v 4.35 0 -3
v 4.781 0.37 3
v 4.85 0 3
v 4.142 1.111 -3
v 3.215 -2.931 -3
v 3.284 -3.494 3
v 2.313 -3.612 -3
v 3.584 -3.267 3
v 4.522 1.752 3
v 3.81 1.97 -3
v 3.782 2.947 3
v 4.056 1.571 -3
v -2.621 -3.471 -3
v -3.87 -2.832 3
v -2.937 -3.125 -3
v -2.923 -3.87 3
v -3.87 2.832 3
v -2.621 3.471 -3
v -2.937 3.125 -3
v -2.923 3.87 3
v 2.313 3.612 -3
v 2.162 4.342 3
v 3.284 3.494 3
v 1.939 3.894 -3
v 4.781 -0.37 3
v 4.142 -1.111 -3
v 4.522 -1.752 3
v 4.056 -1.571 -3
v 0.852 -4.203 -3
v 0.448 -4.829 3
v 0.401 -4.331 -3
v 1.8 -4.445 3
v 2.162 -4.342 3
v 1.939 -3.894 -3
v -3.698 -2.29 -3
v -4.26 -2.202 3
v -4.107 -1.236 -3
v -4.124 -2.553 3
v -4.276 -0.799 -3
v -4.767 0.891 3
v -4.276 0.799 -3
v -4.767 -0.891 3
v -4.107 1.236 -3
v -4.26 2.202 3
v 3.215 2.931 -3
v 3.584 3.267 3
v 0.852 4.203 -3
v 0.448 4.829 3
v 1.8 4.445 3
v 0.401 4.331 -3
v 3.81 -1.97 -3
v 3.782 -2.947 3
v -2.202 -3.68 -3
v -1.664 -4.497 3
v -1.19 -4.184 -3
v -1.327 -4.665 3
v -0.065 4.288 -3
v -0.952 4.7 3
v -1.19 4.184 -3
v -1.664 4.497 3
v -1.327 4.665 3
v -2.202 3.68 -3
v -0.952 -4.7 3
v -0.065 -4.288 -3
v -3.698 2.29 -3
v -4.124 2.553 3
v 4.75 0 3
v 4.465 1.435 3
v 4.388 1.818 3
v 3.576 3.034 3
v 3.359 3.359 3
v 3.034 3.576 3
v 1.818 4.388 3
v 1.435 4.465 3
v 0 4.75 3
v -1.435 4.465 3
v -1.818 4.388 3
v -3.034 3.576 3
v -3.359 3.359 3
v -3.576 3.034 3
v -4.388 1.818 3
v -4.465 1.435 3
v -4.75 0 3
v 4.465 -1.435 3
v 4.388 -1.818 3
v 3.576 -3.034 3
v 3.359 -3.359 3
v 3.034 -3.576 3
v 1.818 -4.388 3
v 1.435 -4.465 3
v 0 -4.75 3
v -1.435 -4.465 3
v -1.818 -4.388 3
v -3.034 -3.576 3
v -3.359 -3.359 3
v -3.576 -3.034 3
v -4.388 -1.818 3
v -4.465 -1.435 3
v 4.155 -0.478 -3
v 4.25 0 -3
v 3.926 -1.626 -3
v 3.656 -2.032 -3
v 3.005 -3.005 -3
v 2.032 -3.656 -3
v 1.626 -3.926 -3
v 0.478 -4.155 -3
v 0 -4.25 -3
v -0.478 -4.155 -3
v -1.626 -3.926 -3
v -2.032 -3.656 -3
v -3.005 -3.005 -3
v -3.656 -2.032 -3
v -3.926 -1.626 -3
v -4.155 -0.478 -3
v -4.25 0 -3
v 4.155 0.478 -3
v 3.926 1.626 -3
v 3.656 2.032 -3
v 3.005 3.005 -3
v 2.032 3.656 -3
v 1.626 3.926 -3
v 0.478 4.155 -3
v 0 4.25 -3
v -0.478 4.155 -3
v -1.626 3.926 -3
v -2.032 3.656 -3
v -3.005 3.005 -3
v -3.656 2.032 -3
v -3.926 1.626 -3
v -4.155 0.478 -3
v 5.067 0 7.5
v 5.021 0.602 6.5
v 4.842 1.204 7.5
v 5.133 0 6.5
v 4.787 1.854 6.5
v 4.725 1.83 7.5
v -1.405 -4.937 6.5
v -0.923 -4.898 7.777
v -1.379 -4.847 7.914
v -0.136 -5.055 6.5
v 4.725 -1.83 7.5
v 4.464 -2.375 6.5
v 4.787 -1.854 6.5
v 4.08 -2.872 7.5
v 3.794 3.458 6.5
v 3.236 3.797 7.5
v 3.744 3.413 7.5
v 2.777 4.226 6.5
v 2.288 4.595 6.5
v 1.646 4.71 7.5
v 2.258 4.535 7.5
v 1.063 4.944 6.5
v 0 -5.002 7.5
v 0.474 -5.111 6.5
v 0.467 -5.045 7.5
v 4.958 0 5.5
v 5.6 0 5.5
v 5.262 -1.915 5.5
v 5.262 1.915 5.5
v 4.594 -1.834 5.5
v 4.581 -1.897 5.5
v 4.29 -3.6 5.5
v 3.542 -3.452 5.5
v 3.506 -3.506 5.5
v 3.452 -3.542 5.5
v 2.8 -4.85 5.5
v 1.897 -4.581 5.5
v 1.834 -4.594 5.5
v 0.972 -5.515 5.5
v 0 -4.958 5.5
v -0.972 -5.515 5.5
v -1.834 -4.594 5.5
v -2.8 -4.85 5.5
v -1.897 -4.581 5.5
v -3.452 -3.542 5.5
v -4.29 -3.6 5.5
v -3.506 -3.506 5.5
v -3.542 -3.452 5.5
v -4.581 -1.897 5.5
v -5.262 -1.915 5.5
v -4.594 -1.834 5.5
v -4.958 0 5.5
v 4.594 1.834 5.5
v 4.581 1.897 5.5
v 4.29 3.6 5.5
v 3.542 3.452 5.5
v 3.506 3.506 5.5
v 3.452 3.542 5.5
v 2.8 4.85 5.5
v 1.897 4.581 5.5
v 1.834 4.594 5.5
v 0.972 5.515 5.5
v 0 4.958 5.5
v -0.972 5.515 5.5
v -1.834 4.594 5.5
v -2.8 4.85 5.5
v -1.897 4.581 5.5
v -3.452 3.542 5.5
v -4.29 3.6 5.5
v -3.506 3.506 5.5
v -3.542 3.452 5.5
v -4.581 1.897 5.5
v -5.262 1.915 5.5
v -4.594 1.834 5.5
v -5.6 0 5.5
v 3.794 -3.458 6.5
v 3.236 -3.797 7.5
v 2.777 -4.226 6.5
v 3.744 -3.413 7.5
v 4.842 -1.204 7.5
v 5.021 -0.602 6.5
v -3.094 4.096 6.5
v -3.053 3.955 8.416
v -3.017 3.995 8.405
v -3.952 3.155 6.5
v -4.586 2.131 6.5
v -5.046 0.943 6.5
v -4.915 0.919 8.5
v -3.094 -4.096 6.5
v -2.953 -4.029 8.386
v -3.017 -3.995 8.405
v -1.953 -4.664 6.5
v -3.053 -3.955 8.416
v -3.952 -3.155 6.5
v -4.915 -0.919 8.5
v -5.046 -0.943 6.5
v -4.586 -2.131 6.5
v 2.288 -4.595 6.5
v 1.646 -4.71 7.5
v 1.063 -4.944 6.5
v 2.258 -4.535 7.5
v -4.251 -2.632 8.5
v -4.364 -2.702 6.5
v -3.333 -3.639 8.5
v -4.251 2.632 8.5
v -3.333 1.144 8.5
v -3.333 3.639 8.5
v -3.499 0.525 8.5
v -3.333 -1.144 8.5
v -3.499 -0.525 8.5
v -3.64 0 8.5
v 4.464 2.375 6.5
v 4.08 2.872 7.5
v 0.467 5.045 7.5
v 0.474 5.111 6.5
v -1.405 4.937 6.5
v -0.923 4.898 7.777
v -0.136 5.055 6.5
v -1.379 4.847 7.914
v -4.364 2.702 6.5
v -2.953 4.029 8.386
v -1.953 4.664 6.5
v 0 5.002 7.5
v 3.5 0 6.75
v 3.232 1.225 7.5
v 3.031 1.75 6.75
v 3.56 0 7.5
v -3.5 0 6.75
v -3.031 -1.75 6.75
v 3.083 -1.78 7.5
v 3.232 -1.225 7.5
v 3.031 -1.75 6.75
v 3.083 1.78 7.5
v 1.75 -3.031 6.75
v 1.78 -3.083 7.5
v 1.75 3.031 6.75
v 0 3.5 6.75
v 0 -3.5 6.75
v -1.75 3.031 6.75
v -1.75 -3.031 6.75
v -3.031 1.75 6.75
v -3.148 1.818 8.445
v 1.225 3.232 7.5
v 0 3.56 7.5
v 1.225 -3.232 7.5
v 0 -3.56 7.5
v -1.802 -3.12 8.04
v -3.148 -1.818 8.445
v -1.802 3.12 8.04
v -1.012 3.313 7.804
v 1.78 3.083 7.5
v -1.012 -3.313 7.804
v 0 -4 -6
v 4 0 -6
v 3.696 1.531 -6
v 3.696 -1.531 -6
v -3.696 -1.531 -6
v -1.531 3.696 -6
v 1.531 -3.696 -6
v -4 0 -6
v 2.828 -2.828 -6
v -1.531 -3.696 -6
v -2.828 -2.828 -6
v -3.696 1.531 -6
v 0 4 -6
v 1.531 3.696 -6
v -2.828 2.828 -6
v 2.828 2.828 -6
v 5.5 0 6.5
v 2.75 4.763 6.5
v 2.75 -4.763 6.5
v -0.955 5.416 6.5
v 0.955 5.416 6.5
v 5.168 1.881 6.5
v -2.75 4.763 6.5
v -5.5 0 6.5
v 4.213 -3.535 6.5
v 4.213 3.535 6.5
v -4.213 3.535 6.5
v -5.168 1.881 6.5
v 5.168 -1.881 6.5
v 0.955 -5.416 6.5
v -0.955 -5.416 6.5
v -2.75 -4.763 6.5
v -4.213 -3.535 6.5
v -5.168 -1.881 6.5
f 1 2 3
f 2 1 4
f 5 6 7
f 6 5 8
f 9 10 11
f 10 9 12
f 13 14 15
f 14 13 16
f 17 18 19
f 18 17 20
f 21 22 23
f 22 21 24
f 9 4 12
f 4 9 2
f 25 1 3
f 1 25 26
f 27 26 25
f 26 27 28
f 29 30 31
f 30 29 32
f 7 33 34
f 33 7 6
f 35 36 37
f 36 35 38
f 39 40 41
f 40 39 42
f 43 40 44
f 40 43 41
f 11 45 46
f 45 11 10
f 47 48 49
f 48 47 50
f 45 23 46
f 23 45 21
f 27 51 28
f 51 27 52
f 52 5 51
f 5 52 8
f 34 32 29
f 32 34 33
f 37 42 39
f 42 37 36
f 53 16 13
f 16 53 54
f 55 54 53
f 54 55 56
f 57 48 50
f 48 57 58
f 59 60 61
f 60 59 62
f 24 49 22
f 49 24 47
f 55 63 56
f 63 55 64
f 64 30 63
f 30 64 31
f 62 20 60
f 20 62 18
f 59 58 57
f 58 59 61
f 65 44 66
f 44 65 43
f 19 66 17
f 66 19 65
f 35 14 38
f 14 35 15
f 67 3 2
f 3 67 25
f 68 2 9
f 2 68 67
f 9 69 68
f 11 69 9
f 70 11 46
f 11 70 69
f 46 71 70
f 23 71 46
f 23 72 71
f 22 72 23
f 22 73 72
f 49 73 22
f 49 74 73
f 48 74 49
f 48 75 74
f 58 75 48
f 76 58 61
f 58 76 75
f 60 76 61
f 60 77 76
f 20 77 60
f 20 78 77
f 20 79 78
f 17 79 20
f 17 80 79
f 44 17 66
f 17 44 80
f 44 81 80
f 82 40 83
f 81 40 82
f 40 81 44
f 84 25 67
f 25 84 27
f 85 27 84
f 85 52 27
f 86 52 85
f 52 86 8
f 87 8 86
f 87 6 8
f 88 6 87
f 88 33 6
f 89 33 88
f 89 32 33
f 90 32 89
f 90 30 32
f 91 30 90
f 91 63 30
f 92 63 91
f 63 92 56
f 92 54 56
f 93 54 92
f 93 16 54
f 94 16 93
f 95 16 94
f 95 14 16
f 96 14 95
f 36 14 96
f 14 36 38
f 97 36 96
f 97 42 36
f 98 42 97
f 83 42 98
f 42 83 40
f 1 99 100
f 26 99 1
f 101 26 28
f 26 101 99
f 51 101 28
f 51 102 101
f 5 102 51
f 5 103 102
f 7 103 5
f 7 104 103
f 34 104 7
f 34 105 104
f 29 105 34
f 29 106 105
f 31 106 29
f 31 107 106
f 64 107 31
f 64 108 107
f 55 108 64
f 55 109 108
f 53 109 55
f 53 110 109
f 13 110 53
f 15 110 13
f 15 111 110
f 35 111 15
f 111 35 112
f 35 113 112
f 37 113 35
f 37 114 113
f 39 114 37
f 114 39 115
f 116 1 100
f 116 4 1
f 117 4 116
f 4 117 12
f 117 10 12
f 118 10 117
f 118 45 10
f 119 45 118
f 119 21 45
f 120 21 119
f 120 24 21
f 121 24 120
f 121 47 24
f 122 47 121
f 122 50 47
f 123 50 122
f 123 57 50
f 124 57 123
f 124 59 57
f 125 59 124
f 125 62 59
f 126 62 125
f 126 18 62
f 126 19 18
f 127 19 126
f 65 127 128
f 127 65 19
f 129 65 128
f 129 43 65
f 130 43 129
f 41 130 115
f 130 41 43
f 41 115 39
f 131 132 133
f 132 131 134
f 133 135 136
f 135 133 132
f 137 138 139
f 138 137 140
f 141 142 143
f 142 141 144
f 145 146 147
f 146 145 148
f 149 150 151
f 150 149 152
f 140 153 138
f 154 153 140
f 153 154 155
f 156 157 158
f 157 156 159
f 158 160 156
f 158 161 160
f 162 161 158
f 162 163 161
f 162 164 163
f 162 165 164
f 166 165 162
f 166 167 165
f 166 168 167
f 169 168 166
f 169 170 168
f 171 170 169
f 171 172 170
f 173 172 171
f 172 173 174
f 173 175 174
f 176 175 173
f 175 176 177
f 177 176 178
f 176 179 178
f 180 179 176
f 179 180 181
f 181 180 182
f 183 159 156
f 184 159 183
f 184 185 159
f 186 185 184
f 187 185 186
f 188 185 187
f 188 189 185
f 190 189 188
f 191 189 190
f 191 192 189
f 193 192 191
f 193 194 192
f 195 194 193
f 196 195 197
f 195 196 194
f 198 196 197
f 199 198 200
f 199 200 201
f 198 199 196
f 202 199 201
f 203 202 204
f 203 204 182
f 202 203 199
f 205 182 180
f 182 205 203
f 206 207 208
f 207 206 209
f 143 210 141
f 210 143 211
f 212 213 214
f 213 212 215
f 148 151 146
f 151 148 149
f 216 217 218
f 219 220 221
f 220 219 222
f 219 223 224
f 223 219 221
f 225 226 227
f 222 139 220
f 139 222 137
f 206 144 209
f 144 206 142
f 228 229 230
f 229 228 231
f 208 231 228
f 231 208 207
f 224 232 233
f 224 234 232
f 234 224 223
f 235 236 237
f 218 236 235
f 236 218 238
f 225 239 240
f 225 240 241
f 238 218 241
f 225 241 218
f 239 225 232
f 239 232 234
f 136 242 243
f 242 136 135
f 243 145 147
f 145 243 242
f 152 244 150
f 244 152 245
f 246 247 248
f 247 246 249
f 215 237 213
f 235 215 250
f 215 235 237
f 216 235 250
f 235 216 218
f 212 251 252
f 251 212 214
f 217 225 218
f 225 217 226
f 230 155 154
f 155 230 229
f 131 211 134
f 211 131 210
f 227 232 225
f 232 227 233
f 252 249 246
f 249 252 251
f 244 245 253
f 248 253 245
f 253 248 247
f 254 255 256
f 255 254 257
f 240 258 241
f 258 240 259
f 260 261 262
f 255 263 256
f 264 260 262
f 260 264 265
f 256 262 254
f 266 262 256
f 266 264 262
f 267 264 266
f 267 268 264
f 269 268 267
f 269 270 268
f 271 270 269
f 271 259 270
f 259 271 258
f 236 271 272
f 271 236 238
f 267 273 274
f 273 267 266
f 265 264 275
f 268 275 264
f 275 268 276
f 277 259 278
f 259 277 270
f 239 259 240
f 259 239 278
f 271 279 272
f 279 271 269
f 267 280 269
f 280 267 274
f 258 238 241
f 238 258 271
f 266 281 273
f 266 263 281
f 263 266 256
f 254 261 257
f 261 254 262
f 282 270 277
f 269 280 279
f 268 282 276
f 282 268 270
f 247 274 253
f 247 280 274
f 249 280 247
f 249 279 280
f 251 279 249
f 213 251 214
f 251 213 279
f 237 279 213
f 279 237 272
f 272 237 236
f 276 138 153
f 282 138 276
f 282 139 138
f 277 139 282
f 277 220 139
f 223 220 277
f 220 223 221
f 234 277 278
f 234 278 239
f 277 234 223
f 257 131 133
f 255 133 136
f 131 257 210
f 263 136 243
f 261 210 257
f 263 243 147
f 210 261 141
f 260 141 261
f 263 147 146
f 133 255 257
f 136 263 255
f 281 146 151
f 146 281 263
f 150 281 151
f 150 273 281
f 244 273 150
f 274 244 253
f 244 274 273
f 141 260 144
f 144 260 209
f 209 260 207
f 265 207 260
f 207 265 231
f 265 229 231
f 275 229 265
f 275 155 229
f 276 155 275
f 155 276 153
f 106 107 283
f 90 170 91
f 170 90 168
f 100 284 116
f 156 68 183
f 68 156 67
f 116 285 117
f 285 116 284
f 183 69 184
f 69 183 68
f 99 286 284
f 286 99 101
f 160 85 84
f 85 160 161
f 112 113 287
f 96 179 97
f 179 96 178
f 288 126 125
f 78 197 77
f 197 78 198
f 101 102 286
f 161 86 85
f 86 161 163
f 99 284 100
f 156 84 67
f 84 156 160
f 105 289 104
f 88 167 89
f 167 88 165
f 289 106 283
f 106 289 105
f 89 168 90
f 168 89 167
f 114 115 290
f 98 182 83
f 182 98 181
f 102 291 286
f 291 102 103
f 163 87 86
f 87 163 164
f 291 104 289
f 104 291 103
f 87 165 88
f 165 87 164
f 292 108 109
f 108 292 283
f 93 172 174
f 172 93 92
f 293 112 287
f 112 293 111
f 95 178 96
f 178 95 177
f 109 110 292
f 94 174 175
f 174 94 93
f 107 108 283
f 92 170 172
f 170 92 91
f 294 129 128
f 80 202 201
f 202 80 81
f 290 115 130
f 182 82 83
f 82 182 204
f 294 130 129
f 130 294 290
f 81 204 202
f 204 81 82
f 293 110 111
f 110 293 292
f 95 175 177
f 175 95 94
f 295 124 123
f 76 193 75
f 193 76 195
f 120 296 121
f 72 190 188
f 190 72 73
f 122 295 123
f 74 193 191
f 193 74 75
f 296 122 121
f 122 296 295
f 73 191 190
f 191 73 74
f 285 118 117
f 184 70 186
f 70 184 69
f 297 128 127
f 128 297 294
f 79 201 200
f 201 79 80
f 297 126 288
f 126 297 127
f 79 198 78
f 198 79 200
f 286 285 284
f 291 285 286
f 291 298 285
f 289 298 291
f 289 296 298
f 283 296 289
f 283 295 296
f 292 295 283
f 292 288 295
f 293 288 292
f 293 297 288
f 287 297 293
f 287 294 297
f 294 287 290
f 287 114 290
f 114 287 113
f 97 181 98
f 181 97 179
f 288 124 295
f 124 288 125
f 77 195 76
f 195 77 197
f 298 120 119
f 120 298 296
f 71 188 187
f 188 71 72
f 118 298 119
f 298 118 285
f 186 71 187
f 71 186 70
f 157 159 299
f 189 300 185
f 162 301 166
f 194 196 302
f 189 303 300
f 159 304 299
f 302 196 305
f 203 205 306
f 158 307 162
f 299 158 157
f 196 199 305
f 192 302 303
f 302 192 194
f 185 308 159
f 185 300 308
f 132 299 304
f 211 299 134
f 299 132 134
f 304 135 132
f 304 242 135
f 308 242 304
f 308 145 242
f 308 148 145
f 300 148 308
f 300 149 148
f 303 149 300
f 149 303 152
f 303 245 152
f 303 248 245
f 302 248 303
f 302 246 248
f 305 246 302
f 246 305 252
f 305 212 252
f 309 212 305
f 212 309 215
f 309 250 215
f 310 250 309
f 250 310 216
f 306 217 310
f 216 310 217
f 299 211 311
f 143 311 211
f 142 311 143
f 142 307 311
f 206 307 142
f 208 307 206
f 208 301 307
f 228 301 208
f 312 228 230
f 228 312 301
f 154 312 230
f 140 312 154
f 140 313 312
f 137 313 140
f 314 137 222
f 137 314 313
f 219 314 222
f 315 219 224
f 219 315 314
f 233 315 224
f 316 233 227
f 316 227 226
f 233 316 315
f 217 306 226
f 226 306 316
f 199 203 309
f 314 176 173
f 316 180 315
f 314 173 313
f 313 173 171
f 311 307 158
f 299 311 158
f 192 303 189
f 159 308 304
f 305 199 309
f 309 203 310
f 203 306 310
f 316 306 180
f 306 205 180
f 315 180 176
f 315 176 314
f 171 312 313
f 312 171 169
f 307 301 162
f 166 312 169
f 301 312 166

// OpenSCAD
// Cup Shape
color([1.0,1.0,1.0])
cylinder(12, 4, 5, true);

// Hand-hold Shape
color([0.6, 0.4, 0.0])
intersection() {
    cylinder(12, 4.1, 5.1, true);
    cube([10, 10, 6], true);
}

// Lid Shape
{
    // Lip
    color([0.1,0.1,0.1])
    translate([0,0,6])
    cylinder(1, 5.6, 5.5, true);
    
    // Primary Lid
    color([0.1,0.1,0.1]) difference(){
        translate([0,0,7])
        cylinder(3, 5.2, 5, true);
        
        // Central Cutout
        translate([0,0,8])
        cylinder(2.5, 3.5, 3.7, true);
        
        // Lid Shaping
        polyhedron(
        points = [
            [0, 6, 7.5],  // 0
            [0, -6, 7.5], // 1
            [6, 6, 7.5],  // 2
            [6, -6, 7.5], // 3
            [-5, 6, 9],  // 4
            [-5, -6, 9], // 5
            [6, 6, 9],  // 6
            [6, -6, 9]  // 7
        ],
        faces = [
            [0,1,3,2], // Bottom
            [1,5,7,3], // Left
            [0,2,6,4], // Right
            [0,4,5,1], // Back
            [2,3,7,6], // Front
            [4,6,7,5]  // Top
        ]);
        
    }
}
